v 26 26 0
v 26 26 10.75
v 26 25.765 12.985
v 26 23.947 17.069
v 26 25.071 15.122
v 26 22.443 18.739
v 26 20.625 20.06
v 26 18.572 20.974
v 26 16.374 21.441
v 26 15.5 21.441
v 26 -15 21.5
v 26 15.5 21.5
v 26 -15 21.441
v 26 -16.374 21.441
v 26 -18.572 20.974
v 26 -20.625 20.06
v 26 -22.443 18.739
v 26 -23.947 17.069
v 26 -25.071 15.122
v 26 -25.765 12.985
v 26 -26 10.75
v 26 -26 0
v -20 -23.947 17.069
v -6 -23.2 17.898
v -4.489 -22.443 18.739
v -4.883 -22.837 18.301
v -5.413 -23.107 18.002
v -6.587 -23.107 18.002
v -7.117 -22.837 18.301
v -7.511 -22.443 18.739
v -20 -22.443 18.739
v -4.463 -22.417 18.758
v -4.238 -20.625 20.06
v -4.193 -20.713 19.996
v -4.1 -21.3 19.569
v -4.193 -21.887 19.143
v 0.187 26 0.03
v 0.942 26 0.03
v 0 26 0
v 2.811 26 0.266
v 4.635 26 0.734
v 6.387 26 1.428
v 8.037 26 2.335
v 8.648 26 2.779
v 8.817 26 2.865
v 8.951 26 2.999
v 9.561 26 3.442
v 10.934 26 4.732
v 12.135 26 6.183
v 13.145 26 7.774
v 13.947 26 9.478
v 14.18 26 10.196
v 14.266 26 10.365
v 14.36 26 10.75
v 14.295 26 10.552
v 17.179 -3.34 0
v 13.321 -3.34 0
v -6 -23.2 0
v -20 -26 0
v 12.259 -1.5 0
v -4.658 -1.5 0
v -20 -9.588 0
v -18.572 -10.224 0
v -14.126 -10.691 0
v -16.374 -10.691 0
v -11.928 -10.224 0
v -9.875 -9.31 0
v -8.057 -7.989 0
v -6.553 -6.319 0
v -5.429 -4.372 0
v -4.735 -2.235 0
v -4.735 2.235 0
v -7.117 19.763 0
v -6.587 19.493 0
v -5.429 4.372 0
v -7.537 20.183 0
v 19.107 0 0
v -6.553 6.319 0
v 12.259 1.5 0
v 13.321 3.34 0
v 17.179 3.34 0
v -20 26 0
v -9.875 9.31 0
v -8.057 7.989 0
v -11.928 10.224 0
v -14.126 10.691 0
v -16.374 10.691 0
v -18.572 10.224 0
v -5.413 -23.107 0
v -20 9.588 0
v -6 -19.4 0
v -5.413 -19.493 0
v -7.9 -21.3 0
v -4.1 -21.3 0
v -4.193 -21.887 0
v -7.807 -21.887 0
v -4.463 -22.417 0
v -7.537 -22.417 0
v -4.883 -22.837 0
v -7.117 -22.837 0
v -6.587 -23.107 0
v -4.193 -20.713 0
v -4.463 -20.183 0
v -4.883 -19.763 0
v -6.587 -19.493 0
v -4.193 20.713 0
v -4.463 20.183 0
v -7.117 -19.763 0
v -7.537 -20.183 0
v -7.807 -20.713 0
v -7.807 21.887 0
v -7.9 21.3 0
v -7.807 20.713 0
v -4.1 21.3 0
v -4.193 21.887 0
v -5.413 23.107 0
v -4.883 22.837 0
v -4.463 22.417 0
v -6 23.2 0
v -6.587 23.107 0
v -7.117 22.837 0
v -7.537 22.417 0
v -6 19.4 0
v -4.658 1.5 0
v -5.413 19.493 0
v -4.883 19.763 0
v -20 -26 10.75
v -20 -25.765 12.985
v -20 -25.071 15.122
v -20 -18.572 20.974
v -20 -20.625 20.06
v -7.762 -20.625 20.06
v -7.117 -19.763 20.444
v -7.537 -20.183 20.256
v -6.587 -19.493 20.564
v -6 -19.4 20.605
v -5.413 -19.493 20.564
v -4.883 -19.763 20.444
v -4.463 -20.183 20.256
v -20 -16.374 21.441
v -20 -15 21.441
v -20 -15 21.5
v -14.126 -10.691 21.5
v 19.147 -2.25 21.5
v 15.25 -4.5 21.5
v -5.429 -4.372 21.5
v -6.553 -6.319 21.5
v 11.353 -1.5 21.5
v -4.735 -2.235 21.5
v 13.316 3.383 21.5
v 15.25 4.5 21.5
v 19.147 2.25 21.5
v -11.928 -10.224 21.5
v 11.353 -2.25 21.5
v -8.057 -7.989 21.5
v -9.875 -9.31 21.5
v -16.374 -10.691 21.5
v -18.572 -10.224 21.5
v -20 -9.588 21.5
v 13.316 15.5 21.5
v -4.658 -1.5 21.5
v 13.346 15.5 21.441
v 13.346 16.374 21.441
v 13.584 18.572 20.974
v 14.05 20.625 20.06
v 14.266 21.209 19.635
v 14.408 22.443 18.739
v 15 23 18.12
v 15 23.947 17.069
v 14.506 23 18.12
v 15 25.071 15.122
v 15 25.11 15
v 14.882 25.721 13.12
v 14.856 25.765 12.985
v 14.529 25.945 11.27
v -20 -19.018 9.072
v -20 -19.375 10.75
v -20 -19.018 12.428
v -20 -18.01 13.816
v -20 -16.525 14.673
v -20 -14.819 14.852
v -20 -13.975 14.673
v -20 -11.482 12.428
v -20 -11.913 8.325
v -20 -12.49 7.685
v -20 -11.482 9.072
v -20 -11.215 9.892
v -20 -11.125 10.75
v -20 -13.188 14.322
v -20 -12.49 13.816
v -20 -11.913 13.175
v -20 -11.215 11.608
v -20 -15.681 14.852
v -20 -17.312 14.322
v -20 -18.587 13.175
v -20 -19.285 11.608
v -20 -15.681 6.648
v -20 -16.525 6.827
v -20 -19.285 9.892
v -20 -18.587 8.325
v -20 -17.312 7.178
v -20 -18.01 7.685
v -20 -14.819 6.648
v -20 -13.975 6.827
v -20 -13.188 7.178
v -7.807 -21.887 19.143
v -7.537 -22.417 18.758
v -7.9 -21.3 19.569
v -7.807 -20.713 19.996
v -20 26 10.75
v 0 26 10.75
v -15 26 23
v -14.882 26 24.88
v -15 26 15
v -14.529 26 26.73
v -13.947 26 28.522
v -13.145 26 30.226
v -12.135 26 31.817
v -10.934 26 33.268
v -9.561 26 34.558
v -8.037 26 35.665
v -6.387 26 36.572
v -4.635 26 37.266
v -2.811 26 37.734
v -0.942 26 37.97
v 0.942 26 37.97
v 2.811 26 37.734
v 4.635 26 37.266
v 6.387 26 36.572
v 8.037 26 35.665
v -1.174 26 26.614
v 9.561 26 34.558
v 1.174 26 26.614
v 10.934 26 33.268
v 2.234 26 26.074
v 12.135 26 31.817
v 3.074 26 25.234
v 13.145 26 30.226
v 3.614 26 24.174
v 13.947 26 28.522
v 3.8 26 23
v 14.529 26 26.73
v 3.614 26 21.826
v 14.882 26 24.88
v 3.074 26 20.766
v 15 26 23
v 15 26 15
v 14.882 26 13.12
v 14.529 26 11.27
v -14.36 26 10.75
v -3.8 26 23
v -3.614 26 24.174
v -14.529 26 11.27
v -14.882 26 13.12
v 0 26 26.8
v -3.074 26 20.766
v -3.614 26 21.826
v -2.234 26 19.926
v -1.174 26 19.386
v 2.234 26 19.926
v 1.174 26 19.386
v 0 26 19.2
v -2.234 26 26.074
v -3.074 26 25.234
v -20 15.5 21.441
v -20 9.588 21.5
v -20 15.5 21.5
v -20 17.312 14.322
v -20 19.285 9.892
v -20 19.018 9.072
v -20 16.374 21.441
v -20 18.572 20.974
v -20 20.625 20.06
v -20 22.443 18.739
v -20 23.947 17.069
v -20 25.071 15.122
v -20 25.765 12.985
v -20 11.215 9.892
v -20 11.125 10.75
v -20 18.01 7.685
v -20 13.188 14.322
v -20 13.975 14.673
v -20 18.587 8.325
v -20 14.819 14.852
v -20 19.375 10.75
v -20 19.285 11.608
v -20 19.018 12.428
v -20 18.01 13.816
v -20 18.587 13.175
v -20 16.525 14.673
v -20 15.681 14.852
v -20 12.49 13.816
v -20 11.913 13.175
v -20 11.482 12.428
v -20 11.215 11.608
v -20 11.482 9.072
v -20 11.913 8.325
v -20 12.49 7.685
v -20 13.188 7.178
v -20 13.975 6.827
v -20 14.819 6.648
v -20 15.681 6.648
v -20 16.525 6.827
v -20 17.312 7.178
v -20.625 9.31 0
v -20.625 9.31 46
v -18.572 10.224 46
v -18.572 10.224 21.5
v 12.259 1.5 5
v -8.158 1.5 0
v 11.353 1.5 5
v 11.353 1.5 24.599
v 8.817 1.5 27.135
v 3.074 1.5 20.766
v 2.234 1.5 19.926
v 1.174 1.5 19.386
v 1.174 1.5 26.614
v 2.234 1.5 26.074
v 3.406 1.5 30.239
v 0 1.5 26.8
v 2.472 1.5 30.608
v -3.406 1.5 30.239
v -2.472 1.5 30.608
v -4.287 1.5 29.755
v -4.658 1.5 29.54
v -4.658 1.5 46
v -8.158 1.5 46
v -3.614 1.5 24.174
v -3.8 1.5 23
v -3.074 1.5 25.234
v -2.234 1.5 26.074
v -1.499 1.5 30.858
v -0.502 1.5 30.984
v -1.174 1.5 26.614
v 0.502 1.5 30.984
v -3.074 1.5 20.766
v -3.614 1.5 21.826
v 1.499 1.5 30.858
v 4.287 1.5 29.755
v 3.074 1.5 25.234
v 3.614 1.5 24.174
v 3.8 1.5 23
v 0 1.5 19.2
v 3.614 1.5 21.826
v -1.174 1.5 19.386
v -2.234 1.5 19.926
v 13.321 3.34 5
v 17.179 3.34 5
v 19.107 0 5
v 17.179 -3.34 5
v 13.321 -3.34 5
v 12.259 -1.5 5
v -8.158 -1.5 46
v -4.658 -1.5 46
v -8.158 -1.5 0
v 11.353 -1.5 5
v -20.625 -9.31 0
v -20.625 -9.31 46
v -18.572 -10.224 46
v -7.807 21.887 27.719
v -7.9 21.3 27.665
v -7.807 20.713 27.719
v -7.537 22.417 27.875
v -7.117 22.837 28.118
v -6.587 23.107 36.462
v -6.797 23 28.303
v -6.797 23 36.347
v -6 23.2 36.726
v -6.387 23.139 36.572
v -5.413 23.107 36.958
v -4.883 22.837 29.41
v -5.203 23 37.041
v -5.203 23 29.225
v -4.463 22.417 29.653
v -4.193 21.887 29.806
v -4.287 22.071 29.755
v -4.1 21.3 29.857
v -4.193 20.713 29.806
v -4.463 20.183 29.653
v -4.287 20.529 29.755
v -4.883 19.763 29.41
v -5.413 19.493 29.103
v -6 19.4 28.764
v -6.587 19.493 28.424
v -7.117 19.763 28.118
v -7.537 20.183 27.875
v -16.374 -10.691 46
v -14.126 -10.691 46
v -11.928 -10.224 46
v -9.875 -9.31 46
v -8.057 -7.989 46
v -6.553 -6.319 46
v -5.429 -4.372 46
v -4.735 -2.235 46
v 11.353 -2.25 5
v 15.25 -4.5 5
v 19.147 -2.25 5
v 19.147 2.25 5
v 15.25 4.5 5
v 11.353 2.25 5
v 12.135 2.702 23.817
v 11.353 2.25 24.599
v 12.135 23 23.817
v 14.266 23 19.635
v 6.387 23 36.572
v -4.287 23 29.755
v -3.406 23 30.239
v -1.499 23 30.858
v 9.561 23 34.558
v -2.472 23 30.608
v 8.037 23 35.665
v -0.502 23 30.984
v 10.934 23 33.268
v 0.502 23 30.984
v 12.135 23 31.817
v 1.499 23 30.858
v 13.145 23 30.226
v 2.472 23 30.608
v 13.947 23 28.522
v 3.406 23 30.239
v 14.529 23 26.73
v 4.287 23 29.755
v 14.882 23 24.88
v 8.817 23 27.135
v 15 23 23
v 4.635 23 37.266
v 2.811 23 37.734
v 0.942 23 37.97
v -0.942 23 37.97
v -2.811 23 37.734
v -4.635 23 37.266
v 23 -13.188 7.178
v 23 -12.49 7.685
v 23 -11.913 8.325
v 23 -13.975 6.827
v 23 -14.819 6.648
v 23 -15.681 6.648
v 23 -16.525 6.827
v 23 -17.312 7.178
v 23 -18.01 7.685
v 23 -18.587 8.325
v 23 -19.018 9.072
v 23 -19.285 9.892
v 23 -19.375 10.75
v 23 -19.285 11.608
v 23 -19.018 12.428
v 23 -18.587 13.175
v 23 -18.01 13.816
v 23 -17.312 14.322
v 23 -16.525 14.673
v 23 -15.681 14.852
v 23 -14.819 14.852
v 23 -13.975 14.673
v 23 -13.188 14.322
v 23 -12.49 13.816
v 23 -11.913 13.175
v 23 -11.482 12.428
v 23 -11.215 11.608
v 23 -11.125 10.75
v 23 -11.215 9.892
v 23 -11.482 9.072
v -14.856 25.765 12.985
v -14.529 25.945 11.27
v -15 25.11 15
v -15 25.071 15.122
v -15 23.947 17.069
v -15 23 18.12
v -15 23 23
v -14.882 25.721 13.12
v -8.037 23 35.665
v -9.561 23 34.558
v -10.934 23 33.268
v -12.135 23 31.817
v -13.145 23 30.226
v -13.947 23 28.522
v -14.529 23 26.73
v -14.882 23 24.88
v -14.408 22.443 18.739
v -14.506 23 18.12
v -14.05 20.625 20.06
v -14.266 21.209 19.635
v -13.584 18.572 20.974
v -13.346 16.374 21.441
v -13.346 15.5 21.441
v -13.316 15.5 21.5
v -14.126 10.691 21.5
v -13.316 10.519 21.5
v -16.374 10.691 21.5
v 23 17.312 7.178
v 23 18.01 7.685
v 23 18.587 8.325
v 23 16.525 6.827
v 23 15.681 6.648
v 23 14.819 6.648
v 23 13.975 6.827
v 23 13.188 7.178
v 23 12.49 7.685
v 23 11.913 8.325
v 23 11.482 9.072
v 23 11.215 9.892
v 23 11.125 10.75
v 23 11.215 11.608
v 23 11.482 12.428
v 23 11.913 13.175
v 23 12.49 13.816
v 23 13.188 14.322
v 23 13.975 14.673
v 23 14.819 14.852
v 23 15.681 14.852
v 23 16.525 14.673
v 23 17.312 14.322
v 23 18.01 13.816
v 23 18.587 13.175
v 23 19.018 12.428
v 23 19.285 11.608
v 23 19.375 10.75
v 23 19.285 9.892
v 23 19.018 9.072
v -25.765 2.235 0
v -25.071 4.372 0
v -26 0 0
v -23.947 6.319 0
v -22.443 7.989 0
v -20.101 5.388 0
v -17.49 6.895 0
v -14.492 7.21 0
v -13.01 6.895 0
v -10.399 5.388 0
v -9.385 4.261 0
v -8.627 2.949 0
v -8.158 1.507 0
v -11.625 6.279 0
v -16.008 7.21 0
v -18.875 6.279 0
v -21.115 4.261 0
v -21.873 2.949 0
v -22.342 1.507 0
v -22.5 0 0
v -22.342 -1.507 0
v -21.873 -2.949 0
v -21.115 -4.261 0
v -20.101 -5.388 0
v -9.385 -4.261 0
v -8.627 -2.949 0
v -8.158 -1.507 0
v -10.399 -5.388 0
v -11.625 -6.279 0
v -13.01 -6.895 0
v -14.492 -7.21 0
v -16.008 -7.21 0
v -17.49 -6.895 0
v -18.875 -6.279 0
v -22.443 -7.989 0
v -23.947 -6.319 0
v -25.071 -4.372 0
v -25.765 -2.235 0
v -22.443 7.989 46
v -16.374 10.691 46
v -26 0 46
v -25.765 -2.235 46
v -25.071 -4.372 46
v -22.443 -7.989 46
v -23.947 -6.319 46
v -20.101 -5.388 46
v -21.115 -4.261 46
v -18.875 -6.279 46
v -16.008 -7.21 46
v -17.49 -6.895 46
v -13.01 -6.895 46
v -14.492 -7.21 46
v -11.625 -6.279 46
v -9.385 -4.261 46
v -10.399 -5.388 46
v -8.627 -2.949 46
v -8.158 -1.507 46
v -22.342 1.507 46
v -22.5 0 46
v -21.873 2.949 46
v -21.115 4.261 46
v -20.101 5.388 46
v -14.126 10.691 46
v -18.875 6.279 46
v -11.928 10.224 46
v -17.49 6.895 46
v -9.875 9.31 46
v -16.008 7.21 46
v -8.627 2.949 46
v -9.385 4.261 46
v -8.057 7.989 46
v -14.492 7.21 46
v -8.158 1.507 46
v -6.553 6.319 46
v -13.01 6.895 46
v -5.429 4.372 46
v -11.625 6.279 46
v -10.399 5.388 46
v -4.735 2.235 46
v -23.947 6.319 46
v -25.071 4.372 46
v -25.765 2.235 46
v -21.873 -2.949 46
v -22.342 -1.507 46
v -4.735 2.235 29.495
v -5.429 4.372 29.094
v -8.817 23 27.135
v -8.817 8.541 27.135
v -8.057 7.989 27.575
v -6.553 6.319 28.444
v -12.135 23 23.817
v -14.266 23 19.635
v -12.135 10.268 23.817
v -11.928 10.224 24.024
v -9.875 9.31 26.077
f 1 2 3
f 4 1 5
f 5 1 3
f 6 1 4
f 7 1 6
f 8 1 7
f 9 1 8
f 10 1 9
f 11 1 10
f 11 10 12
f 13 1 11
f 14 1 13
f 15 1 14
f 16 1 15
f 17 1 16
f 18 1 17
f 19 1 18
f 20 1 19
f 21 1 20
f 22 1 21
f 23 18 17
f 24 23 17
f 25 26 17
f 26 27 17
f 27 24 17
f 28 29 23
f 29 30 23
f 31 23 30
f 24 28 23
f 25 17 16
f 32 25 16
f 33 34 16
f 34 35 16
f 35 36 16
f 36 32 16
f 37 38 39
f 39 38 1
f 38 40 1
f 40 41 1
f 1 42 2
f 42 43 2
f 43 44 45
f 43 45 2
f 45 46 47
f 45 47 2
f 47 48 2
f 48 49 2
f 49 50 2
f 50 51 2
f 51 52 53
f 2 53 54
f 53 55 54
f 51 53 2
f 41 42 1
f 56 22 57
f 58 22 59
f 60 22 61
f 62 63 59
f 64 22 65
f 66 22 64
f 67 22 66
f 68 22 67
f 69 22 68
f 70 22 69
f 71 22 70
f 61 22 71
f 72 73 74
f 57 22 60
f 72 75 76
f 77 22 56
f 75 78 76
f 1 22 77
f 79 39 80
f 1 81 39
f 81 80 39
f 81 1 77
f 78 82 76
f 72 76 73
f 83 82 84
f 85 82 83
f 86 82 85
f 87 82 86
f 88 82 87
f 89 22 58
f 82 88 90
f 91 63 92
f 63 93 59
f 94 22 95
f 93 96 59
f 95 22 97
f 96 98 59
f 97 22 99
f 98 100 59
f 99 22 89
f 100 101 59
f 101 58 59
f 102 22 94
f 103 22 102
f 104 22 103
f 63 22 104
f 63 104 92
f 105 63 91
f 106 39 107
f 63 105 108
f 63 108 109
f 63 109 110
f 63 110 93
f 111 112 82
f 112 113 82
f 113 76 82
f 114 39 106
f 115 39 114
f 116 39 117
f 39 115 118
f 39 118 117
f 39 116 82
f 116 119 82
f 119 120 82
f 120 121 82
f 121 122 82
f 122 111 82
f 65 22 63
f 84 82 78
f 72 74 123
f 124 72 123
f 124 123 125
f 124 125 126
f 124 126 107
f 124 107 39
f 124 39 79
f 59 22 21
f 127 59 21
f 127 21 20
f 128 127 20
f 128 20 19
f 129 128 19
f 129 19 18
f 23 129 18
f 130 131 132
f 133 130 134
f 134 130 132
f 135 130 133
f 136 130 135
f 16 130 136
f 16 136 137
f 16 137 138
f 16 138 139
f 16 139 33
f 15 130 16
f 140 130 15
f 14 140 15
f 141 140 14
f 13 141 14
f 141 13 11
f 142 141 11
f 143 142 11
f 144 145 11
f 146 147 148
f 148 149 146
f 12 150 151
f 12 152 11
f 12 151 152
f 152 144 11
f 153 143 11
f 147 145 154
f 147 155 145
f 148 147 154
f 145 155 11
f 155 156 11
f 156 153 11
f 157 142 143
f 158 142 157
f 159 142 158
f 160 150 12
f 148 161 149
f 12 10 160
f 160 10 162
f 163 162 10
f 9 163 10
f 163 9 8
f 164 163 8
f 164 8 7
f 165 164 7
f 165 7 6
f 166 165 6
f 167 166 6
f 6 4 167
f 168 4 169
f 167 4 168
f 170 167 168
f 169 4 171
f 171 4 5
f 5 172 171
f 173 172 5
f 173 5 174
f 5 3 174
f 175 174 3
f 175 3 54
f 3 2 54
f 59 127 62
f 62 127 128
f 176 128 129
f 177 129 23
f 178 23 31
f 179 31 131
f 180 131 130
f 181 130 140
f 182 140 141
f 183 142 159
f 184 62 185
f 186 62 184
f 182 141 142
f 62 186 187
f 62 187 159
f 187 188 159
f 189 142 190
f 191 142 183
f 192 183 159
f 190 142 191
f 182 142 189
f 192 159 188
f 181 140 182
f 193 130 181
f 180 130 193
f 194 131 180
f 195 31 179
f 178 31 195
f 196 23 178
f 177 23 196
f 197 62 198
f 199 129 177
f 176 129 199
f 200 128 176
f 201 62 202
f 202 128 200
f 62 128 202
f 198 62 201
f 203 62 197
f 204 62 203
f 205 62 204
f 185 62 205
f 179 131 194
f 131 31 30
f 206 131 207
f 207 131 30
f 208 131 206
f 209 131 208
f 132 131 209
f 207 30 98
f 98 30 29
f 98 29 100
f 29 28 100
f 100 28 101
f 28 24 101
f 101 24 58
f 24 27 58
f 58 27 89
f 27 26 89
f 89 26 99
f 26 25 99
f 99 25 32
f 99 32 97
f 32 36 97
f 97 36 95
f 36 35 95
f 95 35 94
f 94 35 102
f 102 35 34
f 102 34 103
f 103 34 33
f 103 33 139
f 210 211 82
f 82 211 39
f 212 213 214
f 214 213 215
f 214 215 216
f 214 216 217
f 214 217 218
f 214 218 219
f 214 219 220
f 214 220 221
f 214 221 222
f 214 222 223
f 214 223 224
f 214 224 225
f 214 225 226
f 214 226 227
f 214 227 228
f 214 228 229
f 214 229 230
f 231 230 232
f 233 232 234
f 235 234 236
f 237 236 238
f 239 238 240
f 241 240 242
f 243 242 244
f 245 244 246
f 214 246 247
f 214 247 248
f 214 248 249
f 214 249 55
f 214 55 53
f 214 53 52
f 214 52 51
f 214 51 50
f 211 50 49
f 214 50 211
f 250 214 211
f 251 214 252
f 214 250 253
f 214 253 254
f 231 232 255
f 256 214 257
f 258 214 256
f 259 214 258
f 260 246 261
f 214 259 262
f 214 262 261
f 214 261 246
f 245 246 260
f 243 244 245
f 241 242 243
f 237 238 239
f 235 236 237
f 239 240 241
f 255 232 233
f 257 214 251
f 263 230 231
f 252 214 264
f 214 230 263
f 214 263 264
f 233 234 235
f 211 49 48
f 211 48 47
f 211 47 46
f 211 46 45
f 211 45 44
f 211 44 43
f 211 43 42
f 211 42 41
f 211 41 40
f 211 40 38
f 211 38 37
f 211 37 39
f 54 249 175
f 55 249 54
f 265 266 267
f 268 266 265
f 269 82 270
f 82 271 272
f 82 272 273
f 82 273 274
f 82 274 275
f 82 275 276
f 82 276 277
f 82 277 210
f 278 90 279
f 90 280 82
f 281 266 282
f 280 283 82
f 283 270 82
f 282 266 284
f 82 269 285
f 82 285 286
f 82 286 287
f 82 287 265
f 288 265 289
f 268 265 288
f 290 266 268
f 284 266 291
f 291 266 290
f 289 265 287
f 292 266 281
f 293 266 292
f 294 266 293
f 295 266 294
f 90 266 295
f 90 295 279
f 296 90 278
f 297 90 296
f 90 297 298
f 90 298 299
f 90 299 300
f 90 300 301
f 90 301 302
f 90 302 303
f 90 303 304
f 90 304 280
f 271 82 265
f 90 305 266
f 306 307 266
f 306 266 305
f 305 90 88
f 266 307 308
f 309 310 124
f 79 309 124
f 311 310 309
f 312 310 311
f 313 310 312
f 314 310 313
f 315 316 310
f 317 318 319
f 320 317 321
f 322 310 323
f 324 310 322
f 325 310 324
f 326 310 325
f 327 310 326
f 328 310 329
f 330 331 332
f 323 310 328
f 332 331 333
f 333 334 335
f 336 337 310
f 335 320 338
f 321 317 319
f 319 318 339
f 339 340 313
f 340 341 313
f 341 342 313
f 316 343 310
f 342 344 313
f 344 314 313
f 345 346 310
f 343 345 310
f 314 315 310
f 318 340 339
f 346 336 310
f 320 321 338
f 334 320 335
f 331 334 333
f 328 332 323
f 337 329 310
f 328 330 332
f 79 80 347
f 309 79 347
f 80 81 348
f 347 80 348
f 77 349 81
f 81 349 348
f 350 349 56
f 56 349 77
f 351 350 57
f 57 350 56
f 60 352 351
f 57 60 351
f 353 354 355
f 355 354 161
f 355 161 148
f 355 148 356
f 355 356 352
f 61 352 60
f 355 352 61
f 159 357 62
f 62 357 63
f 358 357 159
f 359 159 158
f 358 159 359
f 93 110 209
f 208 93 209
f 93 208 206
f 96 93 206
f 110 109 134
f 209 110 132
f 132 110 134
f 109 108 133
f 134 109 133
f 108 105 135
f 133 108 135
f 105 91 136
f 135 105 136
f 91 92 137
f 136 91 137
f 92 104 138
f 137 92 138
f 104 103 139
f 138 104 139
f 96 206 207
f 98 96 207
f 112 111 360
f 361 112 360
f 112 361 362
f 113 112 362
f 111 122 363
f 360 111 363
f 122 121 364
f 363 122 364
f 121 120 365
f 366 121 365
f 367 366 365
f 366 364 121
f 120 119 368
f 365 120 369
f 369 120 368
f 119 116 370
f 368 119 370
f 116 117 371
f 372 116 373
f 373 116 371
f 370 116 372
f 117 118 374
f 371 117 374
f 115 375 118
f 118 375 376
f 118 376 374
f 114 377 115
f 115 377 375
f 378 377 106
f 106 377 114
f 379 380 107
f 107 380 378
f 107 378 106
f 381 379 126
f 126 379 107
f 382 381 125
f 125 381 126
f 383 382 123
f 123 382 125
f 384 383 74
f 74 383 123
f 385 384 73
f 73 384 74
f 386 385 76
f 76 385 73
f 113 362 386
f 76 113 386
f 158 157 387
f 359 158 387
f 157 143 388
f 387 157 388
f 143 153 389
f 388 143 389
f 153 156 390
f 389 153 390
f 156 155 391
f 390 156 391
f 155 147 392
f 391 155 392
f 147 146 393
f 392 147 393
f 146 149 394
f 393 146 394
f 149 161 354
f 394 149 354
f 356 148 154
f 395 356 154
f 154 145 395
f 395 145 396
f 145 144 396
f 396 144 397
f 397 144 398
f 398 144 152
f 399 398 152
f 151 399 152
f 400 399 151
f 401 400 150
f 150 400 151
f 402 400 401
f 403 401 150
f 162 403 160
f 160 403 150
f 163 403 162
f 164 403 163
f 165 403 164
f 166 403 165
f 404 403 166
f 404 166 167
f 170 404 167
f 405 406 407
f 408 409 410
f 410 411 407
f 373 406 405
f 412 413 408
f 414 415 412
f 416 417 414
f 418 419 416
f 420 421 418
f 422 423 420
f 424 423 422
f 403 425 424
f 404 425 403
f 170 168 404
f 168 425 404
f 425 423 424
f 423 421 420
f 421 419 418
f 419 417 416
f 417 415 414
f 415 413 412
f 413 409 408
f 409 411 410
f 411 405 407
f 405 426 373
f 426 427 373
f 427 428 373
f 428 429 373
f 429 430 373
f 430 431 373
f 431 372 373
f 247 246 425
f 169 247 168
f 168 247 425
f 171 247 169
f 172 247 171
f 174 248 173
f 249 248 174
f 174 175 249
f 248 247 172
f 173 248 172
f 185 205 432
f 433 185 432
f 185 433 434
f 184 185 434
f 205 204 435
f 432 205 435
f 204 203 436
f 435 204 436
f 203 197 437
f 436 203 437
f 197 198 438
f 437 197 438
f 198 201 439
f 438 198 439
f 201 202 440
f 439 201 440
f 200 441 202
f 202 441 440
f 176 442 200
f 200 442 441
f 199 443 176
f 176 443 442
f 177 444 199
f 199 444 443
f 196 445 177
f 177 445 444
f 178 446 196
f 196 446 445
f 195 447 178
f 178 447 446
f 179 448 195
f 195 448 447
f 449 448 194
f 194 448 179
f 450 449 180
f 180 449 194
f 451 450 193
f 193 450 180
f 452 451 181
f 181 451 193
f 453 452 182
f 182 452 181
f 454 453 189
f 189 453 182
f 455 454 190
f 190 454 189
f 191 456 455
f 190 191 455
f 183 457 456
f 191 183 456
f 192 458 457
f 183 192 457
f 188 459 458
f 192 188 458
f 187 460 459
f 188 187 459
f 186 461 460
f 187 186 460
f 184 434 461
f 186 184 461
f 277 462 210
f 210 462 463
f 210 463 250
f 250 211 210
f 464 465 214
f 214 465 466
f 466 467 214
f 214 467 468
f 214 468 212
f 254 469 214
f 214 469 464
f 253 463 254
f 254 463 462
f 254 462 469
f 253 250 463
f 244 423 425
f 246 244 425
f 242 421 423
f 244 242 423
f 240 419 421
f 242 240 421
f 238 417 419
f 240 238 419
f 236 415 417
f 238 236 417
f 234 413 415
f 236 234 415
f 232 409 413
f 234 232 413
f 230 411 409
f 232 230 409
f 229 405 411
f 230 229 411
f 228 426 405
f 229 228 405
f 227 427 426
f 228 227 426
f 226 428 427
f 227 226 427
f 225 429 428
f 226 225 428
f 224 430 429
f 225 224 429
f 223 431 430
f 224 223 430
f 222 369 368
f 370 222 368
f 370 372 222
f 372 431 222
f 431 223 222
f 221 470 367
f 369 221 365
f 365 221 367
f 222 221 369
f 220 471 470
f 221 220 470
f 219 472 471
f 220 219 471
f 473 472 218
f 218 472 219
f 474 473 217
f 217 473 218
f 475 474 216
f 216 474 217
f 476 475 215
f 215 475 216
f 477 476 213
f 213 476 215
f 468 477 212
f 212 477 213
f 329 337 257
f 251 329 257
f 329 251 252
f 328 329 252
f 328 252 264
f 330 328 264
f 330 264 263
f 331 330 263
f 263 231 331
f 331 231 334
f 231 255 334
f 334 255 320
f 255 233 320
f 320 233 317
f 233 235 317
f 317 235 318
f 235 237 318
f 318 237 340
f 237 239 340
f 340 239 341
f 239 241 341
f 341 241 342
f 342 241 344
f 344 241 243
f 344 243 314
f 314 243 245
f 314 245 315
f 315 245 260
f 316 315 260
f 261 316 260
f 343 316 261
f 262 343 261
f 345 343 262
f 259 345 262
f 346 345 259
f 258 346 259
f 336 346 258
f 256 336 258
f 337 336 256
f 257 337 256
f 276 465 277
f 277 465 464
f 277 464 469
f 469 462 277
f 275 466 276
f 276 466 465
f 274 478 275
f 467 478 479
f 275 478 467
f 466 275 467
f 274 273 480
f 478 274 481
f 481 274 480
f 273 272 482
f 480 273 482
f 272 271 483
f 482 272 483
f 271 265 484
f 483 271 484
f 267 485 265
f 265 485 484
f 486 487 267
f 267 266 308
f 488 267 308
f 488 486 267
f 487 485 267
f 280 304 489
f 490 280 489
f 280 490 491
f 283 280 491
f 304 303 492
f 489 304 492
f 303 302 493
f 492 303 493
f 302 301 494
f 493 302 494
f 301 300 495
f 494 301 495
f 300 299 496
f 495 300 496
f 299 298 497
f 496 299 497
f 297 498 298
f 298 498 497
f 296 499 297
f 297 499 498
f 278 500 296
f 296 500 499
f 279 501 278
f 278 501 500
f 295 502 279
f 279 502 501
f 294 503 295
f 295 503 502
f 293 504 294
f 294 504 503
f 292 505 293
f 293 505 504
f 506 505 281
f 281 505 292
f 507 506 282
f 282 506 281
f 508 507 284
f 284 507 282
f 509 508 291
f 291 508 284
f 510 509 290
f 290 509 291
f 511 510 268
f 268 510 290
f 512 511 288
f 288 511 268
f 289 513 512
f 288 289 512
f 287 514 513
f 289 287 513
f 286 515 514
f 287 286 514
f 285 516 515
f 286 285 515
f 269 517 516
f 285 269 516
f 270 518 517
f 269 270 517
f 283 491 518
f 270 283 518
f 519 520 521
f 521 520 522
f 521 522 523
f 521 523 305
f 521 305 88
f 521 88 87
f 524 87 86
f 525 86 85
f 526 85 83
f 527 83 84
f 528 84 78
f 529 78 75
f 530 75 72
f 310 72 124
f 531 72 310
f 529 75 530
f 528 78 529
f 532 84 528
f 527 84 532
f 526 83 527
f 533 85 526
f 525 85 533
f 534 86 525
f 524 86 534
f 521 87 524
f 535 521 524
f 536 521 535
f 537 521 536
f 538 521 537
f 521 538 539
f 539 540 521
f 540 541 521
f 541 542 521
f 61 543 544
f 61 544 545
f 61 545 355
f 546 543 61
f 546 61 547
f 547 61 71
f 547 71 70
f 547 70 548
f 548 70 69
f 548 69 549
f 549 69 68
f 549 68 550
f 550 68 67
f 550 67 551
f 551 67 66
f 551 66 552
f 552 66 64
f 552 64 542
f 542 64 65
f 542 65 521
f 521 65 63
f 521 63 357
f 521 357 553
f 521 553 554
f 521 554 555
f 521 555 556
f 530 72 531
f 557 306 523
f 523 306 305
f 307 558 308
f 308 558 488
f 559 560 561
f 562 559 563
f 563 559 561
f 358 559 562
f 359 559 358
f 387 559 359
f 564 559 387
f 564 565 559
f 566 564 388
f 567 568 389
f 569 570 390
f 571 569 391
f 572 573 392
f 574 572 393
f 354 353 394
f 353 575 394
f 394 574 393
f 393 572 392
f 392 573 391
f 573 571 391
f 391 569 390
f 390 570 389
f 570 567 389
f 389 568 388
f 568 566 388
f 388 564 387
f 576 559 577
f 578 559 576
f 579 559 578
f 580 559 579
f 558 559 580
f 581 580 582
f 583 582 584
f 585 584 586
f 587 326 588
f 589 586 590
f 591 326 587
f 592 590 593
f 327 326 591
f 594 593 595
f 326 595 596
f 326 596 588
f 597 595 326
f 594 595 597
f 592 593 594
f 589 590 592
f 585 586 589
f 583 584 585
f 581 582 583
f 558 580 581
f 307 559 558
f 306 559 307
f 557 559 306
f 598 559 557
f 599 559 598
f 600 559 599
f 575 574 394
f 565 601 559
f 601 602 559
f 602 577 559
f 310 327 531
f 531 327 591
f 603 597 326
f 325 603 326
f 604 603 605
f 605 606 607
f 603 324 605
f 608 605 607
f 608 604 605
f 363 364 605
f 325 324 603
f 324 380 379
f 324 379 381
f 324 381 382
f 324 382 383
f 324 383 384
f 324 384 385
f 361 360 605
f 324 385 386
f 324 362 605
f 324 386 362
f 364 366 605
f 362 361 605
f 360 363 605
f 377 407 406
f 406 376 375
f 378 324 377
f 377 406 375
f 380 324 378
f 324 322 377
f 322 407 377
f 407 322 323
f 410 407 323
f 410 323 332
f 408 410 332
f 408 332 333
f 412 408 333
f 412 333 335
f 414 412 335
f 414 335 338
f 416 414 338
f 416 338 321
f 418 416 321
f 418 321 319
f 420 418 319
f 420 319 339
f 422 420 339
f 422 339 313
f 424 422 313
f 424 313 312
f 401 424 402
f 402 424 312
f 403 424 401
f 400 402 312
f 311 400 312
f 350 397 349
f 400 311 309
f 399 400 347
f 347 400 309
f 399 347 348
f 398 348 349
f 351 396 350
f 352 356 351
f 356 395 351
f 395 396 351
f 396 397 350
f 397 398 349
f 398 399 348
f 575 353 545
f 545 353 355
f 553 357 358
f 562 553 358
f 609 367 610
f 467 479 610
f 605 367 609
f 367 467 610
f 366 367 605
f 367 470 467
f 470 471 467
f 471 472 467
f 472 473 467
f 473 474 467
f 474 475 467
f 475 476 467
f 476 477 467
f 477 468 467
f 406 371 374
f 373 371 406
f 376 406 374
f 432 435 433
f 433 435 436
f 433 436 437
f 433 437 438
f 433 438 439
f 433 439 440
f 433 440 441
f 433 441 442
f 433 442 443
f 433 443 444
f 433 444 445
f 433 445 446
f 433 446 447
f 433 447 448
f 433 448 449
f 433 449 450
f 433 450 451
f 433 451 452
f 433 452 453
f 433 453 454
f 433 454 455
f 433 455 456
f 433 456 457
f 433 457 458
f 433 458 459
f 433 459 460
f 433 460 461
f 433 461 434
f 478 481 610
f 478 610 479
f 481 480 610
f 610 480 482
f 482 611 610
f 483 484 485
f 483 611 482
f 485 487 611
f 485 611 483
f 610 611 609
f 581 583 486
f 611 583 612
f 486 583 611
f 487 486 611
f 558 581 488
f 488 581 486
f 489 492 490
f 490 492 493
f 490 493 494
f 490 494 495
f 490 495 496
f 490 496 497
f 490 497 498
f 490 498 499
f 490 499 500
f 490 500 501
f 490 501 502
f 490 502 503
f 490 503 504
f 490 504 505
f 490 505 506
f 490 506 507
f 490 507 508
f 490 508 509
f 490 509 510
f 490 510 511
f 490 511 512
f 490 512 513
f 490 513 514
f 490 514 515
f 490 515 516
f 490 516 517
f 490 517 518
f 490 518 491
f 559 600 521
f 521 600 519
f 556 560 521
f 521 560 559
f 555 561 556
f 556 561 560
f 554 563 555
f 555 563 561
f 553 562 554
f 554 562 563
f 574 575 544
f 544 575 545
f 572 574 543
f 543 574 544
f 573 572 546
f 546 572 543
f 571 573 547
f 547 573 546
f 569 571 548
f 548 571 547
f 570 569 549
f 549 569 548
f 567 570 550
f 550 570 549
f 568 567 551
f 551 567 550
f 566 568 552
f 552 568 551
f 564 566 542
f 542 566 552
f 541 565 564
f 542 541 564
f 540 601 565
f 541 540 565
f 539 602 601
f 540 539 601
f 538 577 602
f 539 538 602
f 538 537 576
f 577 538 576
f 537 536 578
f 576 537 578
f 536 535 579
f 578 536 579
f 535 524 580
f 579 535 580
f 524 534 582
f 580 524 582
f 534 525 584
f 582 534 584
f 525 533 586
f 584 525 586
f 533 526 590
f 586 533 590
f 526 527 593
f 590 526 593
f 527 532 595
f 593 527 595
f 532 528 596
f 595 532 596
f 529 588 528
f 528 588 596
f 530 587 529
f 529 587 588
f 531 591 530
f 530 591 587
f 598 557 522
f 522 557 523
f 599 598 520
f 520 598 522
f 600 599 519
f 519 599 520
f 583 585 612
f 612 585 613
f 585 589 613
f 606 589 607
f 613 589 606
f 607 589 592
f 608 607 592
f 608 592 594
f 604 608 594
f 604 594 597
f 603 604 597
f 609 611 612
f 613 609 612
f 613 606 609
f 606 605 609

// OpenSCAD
include <wallace2.scad>;

x_end2(0);
//translate([-60,0,0]) 
//x_end2(1);


module x_end2(motor = 0) mirror([(motor == 0) ? 1 : 0, 0, 0]) difference() {
	union() {
	
		if(motor > 0){
    	
		// clamp for holding cables
		for(side = [1]) mirror([0, side, 0]) 
		translate([(rod_size + bearing_size + 8 + 10)/2-46,(motor_casing/2)+3,0]){
			difference(){
					union(){
						cube([14,10,4]);
						translate([-1,10-2,0])cube([16,2,4]);
					}
					translate([7/2,0,-1])cube([7,11,4+2]);
			}
		}
		
      translate([-1-(motor_casing / 2 + rod_size + bearing_size + 8) / 2 - motor_casing, (x_rod_spacing + 8 + rod_size)/2 + 3, 2])
      {

       rotate([90, 0, 0]) 
        {


          // Motor plate
          translate([0,-2,0]) 
          {
            difference(){
              cube([motor_casing+3,2,(motor_casing / 2 + rod_size + bearing_size + 18)-12]);
              // cut off plate 45 degrees
			  translate([0,-1,4+2]) rotate([0,-45,0]) cube([motor_casing*2,2+2,40]);
            }
          }
          // Motor holder
          linear_extrude(height = 6) difference() {
            square([motor_casing + 40, x_rod_spacing + 8 + rod_size]);
            translate([motor_casing / 2, (x_rod_spacing + 8 + rod_size) / 2, 0]) {
              circle(motor_screw_spacing / 2);
              for(x = [1, -1]) for(y = [1, -1]) translate([x * motor_screw_spacing / 2, y * motor_screw_spacing / 2, 0]) circle(m3_size * da6, $fn = 6);
              translate([-(motor_casing * 1.5 - motor_screw_spacing), (motor > 1) ? (motor_casing / 2 - motor_screw_spacing) : 0, 0]) square([motor_casing*1, x_rod_spacing + 8 + rod_size]);
              translate([motor_casing+2,0,0])rotate([0,0,-45]) translate([-(motor_casing * 1.5 - motor_screw_spacing), (motor > 1) ? (motor_casing / 2 - motor_screw_spacing) : 0, 0]) square([motor_casing*1.5, x_rod_spacing + 8 + rod_size]);
            }
          }
          
          // Belt
          %translate([motor_casing / 2, (x_rod_spacing + 8 + rod_size) / 2, rod_size / 2 - 2 - bearing_size / 2 - 2 - idler_pulley_width / 2]) rotate([180, 0, 0]) linear_extrude(height = 5, convexity = 5) difference() {
            union() {
              circle(pulley_size / 2 + 2);
              translate([0, -pulley_size / 2 - 2, 0]) square([200.5, pulley_size + 4]);
              translate([200.5, 0, 0]) circle(pulley_size / 2 + 2);
            }
            circle(pulley_size / 2);
            translate([0, -pulley_size / 2, 0]) square([200.5, pulley_size]);
            translate([200.5, 0, 0]) circle(pulley_size / 2);
          }

        }
      }
}
		
    difference() {
			union() {
        // cylinders for bearings & Z-rod
				for(side = [1]) translate([side * (motor_casing / 4 + rod_size / 2), 0, 0]) cylinder(r=bearing_size / 2 + 3, $fn = 30,h=x_rod_spacing + 8 + rod_size);
        // connector between these cylinders
				//translate([-x_rod_spacing/2,-1*(bearing_size / 2 + 3), 0]) cube([motor_casing / 2 + rod_size,2*(bearing_size / 2 + 3),x_rod_spacing + 8 + rod_size]);
				
        // cylinders for x-rods
		rotate([90,0,90]){

		for(side = [1, -1]) 
          translate([side * (motor_casing / 4 + rod_size / 2), bearing_size / 2 + 3,-1/2*(x_rod_spacing + 8 + rod_size)-3]) 
          cylinder(r=bearing_size / 2 + 3, $fn = 30,h=x_rod_spacing + 8 + rod_size);

        // connector block between cylinders
				translate([-x_rod_spacing/2,0, -1/2*(x_rod_spacing + 8 + rod_size)-3]) cube([motor_casing / 2 + rod_size,2*(bearing_size / 2 + 3),x_rod_spacing + 8 + rod_size]);

        // bottom half cube to make bottom straight
				translate([-x_rod_spacing/2-(bearing_size / 2 + 3)-.25,0, -1/2*(x_rod_spacing + 8 + rod_size)-3]) 
          cube([motor_casing / 2 + rod_size + 2*(bearing_size / 2 + 3),0.5*2*(bearing_size / 2 + 3),x_rod_spacing + 8 + rod_size]);

  
      if(motor == 0)   {
      // idler bolt bearing guide
        rotate([0,90,0]){
          hull(){
            translate([0,0.5*(x_rod_spacing + 8 + rod_size), 0]) {
              cylinder(r=8,h=0.5*(x_rod_spacing + 8 + rod_size)+3,$fn=50); 
              translate([0,-8,0]) cylinder(r=15,h=0.5*(x_rod_spacing + 8 + rod_size)+3,$fn=20); 
            }
          }
		  
		              translate([0,0.5*(x_rod_spacing + 8 + rod_size), 0.5*(x_rod_spacing + 8 + rod_size)]) {
			hull(){
					  cylinder(r=15,h=3,$fn=50); 
              translate([0,-8,0]) cylinder(r=15,h=3,$fn=50); 
			  }
}
		  
		  
        }
      }

        }

   

		}

			
			// clamp spacer 
      cube([motor_casing / 2 + rod_size, 3,2+2*(x_rod_spacing + 8 + rod_size)], center = true);

			// bearing hole
      translate([(motor_casing / 4 + rod_size / 2), 0, -1]) cylinder(h=2+x_rod_spacing + 8 + rod_size,r=bearing_size / 2 - .5, $fn = 30);

      // nut hole
			translate([-(motor_casing / 4 + rod_size / 2), 0, -1]) cylinder(h=2+x_rod_spacing + 8 + rod_size,r=rod_nut_size * 6/14, $fn = 6);

      if(motor == 0)   {

        // idler bolt mount - hole
        rotate([90,0,0]){
          translate([0,0.5*(x_rod_spacing + 8 + rod_size), -50]) 
            #cylinder(r=7.6/2,h=50); 
        }
       }

	   // smooth rod holes
			rotate([90,0,90]){
         for(side = [1, -1]) 
         translate([side * (motor_casing / 4 + rod_size / 2), bearing_size / 2 + 3,-1/2*(x_rod_spacing + 8 + rod_size)]) 
         #cylinder(r=rod_size/2 + 0.125, $fn = 30,h=x_rod_spacing + 8 + rod_size+10);
      }
			
		}


		
	}

  // z-screw hole
  for (m=[0,1]){
   mirror([0,m,0]){
    if(motor == 0) translate([rod_size/2+2,1.7-1*0.5*(x_rod_spacing + 8 + rod_size),-1]) cylinder(r=4/2-0.1,h=50);
    //if(motor == 0) translate([rod_size/2+2,1.7-1*0.5*(x_rod_spacing + 8 + rod_size)+12.1,-1]) cylinder(r=4/2-0.1,h=50);
   }
  }

  // M8 nut cap
	translate([-(motor_casing / 4 + rod_size / 2), 0, 5]) rotate(90) #cylinder(r = rod_nut_size / 2, h = x_rod_spacing + 8 + rod_size, $fn = 6);

  // smooth rod display
	translate([(motor_casing / 4 + rod_size / 2), 0, 5]) %rotate(180 / 8) #cylinder(r = rod_size * da8, h = 200, center = true, $fn = 8);
}
